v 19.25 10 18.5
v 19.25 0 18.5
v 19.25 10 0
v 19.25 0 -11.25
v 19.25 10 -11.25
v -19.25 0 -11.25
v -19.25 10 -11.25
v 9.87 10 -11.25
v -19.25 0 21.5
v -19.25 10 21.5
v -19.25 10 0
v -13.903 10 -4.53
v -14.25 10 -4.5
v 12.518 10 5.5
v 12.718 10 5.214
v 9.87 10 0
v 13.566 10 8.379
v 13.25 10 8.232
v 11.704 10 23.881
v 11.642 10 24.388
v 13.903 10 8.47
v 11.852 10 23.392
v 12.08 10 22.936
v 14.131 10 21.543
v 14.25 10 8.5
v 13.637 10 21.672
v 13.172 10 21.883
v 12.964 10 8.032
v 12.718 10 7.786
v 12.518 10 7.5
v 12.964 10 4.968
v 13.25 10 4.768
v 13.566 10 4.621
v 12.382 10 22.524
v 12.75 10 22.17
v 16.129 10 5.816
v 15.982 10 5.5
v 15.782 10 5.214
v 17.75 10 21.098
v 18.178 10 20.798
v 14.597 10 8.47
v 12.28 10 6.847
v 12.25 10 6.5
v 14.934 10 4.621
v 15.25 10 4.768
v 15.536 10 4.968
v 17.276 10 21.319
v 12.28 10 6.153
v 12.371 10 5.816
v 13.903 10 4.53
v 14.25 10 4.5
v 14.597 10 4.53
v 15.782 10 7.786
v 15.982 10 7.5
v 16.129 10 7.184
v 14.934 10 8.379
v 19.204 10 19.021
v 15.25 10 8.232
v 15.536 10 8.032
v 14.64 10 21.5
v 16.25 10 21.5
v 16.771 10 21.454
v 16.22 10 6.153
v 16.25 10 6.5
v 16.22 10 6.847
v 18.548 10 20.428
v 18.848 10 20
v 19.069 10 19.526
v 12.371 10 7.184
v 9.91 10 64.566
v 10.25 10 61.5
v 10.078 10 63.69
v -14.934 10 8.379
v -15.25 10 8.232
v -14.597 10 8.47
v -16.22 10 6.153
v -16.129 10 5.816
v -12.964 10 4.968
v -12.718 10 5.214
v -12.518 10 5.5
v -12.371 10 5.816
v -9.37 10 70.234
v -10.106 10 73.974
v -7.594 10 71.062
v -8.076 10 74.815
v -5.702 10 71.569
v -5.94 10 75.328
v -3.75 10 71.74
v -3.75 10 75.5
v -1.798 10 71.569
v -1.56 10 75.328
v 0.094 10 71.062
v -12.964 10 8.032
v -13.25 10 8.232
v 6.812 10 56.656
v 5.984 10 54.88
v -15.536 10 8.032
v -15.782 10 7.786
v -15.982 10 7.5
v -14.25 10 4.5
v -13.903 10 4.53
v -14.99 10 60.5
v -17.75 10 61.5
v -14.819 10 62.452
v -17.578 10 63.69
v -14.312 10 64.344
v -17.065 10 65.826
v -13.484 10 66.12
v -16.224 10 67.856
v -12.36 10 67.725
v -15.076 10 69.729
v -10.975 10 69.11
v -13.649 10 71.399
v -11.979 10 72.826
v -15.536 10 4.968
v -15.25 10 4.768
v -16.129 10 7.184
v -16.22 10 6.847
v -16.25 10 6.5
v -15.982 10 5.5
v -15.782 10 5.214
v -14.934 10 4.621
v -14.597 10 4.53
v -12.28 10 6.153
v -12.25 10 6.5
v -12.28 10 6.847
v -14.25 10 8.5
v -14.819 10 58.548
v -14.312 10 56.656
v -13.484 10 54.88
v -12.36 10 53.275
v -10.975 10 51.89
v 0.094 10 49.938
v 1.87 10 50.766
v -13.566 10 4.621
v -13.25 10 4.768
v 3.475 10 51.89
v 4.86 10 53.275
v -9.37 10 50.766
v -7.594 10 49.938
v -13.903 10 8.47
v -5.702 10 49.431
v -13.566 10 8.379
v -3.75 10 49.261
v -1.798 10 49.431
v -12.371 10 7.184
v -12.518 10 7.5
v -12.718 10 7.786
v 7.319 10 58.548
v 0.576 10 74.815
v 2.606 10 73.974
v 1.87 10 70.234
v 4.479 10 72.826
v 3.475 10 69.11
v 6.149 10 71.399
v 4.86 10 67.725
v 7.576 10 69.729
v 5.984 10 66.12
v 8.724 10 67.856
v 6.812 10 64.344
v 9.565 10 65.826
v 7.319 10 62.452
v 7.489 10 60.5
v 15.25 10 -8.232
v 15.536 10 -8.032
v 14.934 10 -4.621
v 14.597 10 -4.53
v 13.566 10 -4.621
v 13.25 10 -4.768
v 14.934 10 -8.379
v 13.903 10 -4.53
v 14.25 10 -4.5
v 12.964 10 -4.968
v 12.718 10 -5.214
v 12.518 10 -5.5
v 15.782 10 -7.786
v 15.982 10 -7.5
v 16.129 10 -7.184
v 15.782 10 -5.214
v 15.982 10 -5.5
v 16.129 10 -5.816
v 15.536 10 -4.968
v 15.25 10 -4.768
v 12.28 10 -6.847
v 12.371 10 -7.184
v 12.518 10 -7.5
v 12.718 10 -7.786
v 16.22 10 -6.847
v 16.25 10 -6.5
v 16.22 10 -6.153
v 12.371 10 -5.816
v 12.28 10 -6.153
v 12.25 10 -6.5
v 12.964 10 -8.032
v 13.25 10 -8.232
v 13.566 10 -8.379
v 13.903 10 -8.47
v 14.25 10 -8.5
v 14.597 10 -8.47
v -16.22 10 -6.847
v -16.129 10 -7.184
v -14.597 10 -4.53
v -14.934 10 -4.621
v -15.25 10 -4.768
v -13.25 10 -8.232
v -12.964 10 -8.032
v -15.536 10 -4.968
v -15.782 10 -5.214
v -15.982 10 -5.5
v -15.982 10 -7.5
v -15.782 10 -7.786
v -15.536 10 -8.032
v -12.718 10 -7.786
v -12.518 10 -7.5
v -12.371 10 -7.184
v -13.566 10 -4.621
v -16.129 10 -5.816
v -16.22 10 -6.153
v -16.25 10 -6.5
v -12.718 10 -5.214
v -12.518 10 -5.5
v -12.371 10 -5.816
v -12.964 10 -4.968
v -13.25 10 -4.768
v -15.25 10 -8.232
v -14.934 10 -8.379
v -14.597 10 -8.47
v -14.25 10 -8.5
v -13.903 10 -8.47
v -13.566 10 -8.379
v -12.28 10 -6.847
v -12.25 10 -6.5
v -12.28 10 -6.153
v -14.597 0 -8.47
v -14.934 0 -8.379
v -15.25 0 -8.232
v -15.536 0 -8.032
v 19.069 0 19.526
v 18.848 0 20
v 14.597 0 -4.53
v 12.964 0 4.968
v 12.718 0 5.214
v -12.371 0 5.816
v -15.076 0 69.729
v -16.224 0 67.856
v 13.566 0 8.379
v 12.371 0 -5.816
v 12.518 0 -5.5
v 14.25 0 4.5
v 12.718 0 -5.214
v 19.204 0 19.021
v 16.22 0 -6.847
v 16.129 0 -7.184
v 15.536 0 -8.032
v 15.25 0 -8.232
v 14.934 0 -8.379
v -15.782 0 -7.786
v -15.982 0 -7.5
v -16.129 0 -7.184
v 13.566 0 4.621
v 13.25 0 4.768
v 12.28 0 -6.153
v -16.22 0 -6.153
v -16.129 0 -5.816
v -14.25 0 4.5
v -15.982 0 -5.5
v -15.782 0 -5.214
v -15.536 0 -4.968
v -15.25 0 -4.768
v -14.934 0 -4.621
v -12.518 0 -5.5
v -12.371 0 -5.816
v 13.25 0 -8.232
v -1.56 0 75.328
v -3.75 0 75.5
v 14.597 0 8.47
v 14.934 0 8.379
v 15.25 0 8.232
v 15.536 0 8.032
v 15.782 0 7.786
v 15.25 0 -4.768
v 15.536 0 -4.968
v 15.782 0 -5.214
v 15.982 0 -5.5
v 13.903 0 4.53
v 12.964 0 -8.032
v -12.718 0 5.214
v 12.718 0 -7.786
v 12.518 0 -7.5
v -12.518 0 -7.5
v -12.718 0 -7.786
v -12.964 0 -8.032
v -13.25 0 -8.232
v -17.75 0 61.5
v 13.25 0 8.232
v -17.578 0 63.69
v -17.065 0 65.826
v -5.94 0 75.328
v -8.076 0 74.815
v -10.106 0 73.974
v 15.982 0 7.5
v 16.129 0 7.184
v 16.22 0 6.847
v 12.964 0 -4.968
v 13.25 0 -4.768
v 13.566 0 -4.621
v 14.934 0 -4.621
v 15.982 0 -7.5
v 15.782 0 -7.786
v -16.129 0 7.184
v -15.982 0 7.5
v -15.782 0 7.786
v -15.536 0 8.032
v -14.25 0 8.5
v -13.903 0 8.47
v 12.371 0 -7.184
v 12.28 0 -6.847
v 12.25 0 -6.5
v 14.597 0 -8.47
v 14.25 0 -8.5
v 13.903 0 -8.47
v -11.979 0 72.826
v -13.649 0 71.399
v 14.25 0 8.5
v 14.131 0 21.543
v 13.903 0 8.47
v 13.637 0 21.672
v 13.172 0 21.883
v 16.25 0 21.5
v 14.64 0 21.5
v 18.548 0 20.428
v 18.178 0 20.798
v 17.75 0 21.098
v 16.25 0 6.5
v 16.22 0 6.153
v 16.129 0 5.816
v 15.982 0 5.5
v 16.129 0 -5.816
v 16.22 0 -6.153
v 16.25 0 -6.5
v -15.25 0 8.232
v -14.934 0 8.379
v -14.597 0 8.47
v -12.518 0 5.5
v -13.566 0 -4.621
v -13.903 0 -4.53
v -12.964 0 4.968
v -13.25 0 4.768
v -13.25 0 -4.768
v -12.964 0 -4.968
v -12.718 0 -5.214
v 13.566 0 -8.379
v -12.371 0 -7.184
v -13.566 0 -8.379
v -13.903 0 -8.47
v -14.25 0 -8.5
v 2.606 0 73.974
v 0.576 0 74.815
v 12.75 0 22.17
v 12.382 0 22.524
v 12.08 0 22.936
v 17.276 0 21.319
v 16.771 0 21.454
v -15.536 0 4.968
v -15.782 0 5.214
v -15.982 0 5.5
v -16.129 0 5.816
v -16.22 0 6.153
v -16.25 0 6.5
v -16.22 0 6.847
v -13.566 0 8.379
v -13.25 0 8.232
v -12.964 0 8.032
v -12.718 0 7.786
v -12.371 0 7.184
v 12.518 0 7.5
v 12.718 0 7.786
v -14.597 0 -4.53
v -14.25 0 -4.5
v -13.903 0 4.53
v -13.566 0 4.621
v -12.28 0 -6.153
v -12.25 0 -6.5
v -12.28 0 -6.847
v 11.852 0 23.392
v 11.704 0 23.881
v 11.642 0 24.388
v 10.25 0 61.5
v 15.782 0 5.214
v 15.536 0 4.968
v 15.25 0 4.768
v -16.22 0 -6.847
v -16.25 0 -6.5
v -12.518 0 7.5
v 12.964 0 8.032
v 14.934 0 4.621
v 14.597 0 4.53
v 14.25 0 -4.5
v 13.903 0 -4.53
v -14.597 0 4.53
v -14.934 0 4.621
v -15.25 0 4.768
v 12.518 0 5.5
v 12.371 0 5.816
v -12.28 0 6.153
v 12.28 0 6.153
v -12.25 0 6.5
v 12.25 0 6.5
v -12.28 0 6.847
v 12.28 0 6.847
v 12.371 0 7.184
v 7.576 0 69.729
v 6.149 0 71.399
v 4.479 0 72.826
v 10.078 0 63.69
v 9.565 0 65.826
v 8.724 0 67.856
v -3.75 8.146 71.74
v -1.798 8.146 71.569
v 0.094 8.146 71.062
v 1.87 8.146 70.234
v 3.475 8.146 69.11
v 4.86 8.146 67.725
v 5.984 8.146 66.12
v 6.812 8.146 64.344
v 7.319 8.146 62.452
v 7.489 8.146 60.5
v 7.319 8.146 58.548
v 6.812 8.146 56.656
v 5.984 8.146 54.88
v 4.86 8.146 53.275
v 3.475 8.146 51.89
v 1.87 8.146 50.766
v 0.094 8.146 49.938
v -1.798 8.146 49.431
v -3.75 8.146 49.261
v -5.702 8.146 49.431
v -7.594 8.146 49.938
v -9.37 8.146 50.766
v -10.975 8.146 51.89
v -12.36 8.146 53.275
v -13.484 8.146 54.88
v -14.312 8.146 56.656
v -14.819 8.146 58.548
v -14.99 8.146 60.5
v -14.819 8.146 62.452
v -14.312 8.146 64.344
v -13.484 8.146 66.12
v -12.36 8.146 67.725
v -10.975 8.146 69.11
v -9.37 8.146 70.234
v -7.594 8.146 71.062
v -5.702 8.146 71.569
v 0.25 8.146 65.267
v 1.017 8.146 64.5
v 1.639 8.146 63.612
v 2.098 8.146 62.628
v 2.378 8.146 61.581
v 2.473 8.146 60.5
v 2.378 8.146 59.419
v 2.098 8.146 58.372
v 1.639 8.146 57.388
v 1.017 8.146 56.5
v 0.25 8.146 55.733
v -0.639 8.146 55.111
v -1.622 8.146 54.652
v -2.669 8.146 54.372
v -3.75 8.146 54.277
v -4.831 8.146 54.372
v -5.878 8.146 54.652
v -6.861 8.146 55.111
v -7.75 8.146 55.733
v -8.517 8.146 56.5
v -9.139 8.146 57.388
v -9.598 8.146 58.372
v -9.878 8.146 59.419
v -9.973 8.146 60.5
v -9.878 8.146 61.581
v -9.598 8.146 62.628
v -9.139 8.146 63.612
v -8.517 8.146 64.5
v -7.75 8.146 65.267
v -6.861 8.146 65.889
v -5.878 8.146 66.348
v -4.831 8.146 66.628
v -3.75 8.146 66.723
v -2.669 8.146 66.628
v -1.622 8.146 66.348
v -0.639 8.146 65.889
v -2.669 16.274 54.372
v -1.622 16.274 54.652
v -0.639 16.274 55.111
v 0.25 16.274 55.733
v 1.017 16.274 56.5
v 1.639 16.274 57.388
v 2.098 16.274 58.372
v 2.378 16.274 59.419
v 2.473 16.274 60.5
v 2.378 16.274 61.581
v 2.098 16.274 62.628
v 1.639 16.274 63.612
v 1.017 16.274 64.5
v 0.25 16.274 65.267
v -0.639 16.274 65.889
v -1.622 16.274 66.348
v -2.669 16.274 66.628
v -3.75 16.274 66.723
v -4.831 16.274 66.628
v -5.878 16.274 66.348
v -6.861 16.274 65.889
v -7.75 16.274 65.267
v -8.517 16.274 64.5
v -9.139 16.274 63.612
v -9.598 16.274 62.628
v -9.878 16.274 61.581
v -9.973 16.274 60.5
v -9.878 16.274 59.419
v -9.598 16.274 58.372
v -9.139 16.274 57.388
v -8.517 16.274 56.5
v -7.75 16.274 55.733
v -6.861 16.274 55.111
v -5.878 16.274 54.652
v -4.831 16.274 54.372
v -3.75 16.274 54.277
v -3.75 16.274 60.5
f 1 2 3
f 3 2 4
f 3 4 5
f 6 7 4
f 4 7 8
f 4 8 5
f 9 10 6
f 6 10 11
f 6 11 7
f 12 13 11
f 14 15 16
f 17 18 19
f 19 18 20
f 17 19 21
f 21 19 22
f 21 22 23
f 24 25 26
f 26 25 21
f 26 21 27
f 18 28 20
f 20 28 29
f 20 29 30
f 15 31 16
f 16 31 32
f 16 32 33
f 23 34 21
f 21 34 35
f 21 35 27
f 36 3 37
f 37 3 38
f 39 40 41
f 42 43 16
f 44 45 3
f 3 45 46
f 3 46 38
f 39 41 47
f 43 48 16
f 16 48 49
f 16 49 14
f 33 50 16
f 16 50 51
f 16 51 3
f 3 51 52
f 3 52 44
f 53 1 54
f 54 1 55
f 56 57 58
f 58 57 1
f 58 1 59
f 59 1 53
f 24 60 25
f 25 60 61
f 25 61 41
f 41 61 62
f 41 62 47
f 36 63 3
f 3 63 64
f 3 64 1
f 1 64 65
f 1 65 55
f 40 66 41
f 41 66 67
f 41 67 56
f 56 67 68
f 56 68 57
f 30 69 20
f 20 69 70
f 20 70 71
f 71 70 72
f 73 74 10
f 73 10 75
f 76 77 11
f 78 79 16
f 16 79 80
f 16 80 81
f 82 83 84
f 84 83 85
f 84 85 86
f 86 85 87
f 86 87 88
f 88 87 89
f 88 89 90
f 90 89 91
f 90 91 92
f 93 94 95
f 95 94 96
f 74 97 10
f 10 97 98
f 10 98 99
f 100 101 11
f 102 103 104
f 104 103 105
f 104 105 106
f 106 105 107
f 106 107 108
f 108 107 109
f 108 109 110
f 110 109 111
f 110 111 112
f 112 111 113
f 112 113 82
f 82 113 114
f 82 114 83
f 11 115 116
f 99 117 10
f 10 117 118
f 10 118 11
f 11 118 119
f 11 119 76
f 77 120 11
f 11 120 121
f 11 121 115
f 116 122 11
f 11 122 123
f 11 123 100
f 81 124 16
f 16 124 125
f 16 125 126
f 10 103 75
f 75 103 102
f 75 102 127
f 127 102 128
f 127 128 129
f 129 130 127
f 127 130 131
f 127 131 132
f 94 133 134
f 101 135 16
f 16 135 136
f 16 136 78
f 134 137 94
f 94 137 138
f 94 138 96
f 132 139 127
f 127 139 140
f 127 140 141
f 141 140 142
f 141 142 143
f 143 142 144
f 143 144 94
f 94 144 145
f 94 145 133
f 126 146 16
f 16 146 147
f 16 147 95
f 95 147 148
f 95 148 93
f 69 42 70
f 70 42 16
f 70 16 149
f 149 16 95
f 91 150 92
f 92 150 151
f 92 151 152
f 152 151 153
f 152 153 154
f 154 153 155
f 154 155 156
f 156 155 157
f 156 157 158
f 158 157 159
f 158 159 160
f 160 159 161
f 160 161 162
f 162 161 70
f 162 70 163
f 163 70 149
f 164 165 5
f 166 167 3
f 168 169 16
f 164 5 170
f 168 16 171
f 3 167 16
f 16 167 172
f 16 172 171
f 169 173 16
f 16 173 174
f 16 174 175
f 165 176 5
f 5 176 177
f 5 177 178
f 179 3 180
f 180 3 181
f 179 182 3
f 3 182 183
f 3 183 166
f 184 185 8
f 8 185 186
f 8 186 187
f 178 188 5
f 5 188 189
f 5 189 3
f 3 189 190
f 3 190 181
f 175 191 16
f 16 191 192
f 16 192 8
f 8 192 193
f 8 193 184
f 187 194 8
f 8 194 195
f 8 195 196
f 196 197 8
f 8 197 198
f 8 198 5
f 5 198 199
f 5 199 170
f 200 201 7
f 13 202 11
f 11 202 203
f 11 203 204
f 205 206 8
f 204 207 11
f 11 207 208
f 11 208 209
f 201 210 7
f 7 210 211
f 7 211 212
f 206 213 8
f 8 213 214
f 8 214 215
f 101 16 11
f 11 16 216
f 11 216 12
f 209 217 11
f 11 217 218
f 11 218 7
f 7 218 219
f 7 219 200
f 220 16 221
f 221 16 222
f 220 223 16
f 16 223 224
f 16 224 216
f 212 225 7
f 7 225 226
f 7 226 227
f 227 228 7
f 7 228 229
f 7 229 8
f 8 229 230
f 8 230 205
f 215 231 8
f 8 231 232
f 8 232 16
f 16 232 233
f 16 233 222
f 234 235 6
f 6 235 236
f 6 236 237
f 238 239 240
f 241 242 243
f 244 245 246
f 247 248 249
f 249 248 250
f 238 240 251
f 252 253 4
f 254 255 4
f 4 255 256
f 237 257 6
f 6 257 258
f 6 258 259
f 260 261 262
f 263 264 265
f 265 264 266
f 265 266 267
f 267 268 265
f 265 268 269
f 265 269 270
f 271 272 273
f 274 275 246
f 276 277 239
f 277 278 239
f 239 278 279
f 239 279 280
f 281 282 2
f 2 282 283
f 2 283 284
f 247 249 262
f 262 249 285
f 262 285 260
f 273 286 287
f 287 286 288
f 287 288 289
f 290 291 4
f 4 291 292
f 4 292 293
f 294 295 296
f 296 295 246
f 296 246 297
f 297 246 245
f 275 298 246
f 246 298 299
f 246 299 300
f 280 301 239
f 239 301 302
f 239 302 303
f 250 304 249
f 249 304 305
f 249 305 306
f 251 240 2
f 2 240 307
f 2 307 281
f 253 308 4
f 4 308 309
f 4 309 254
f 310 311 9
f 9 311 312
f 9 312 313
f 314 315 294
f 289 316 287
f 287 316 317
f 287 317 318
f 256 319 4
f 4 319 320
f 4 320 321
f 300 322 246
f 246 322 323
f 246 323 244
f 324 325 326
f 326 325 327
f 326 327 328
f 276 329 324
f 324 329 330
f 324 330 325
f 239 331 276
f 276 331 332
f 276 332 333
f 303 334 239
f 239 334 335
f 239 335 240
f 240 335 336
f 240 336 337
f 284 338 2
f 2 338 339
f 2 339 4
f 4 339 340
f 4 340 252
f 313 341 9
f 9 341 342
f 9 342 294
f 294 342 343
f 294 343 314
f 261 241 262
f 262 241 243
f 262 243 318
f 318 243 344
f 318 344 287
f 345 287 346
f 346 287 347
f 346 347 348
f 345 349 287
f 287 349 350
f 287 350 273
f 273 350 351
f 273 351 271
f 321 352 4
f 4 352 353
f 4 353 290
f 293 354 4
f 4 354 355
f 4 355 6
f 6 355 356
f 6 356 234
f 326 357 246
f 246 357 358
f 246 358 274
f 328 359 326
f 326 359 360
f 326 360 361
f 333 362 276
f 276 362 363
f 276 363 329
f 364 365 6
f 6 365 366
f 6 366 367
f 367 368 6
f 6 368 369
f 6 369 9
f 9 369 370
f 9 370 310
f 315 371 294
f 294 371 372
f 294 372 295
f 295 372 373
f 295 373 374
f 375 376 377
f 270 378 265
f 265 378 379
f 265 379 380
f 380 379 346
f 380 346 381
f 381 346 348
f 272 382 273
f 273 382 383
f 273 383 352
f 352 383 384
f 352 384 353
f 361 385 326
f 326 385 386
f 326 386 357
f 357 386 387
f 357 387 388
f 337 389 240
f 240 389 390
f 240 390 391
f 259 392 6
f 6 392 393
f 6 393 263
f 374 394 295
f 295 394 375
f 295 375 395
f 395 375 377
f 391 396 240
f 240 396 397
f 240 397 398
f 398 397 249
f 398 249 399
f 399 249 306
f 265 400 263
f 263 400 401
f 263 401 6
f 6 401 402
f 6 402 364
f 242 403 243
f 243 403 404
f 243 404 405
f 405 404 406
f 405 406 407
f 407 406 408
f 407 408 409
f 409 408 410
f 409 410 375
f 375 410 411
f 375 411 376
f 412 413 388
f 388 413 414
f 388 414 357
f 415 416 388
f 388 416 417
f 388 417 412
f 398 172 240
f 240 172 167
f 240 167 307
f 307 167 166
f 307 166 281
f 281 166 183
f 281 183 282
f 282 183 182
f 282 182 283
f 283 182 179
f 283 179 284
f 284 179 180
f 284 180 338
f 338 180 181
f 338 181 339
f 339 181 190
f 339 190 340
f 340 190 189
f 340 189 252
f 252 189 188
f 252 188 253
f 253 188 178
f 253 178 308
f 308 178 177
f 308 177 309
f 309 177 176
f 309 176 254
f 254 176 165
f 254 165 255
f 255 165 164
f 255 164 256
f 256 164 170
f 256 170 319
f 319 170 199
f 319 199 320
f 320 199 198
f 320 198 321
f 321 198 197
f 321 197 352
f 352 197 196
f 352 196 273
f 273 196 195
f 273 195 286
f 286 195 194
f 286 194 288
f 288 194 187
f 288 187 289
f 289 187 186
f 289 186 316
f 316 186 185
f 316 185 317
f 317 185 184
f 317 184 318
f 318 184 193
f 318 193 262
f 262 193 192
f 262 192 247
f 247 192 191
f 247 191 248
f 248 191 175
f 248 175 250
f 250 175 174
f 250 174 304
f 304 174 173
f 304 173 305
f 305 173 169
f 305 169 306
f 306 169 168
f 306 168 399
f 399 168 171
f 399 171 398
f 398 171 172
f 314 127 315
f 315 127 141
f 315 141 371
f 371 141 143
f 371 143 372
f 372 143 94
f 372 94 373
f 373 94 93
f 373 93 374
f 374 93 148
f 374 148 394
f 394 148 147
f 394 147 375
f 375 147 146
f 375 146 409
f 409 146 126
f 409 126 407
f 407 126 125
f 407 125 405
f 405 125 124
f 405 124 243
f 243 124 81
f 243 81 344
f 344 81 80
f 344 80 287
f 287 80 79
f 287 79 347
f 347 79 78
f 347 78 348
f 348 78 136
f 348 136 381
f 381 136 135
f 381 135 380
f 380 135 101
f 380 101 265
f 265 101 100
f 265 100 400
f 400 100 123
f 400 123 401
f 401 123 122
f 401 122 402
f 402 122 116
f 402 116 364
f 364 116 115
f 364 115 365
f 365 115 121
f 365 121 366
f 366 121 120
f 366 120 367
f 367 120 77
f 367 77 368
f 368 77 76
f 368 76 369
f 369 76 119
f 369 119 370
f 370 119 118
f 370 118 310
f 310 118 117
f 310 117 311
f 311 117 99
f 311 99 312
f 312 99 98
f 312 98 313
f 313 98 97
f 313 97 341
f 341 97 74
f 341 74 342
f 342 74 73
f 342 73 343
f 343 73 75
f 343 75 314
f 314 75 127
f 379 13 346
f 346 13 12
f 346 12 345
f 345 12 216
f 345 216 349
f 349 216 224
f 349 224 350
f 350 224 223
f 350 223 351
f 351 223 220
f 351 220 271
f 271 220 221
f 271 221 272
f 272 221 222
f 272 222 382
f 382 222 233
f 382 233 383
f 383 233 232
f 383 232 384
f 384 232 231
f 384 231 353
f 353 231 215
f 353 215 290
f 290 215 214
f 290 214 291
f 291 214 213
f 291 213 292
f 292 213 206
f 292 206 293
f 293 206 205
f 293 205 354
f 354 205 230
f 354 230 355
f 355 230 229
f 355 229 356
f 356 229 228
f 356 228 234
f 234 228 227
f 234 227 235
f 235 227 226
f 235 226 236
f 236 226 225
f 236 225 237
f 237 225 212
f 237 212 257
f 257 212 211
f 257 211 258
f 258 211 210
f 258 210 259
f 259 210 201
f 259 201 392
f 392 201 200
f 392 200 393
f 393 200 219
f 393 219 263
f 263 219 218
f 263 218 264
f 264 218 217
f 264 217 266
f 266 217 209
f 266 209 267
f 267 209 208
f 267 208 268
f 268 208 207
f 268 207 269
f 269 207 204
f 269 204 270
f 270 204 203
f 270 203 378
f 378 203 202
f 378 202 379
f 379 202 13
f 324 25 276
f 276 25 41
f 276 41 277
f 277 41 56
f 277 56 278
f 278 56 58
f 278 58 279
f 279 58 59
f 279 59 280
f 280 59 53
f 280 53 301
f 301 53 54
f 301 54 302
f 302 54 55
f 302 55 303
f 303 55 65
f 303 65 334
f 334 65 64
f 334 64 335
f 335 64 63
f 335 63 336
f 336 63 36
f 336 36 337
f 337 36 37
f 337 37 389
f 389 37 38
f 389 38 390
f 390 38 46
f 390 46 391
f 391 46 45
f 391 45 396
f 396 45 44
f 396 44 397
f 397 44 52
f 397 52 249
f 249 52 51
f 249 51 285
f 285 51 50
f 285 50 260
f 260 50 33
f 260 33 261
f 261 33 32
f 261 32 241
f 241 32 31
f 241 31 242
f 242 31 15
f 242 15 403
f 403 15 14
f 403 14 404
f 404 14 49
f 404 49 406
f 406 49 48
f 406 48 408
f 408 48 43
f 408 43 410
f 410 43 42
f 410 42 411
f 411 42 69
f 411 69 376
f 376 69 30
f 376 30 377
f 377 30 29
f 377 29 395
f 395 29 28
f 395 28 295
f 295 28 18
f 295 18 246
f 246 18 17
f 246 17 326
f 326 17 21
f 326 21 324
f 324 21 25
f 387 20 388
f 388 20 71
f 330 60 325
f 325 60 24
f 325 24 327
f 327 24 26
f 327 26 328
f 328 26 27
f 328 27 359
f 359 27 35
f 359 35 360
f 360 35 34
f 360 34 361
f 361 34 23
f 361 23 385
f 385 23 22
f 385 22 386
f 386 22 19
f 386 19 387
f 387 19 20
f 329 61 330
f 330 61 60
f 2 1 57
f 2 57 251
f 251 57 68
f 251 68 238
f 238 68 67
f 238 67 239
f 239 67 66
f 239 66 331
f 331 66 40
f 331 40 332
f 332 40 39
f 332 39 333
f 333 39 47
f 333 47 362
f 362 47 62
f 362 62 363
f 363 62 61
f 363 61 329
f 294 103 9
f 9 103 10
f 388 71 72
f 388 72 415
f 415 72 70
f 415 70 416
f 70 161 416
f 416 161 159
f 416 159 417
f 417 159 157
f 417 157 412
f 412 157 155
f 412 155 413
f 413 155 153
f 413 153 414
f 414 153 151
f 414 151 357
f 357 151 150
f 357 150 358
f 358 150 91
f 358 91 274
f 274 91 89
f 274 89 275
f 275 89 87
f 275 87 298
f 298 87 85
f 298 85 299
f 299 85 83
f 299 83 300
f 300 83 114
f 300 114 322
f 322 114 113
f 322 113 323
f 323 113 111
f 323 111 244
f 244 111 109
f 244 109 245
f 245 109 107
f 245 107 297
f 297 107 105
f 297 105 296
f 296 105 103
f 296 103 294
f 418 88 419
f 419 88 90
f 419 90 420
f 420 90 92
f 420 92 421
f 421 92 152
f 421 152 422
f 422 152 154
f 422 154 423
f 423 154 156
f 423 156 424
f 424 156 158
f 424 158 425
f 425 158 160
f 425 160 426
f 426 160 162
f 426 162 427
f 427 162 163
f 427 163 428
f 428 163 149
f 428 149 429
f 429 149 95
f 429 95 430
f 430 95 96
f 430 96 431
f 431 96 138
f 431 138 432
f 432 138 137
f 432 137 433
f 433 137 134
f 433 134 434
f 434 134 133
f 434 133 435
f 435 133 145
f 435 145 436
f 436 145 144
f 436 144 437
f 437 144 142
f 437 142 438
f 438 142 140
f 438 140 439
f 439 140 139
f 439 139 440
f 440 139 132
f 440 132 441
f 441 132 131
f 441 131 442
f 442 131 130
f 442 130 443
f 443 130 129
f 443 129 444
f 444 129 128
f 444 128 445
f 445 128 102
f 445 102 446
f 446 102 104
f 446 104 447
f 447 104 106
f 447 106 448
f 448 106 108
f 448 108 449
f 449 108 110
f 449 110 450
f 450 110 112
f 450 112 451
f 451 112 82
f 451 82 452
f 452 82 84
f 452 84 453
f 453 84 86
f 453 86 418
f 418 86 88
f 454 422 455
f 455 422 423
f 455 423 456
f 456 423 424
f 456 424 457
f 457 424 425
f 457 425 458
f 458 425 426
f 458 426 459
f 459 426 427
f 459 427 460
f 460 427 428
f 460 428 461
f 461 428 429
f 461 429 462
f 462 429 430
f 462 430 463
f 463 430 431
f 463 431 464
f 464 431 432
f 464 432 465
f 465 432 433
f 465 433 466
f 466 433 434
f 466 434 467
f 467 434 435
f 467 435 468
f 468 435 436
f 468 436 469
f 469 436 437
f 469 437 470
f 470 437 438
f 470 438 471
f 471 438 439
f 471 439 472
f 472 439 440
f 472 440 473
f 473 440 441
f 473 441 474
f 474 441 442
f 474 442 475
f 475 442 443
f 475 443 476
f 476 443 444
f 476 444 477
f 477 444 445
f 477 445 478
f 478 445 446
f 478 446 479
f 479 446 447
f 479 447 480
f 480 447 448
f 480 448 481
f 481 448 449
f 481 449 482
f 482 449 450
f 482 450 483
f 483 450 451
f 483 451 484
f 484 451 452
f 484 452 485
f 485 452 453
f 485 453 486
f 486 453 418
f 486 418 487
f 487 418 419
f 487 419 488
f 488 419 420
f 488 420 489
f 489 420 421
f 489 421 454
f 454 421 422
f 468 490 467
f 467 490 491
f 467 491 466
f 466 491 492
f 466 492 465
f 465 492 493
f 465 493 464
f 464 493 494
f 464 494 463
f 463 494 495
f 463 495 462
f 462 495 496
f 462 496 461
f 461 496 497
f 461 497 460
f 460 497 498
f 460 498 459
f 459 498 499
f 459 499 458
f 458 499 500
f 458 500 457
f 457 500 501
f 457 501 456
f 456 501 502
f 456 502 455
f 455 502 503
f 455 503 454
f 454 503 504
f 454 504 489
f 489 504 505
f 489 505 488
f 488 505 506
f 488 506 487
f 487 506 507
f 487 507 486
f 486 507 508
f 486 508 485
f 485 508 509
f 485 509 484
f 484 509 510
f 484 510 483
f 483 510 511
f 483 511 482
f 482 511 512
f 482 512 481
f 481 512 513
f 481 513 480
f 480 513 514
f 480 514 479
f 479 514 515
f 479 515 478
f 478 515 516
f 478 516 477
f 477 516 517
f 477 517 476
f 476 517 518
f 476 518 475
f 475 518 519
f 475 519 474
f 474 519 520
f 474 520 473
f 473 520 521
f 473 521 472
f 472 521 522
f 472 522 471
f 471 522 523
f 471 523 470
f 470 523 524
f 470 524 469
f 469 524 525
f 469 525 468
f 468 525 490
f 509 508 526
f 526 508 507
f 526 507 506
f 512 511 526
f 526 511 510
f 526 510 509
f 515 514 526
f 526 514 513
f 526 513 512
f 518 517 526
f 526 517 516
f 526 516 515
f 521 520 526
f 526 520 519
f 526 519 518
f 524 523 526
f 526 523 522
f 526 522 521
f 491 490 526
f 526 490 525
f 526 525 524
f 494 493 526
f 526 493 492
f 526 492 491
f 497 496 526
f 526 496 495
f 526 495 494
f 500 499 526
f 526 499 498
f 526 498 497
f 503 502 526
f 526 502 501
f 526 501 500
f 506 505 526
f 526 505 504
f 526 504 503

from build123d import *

# Parameters (mm, degrees)
SKETCH1_W             = 38.5
SKETCH1_H             = 22.75
BOSS_EXTRUDE1_DEPTH   = 10
F_4_0MM_DOWEL_HOLE1_D = 4
BOSS_EXTRUDE2_DEPTH   = 10
SKETCH5_R             = 11.2395
CUT_EXTRUDE1_DEPTH    = 1.8542
SKETCH6_R             = 6.223
BOSS_EXTRUDE3_DEPTH   = 8.128


with BuildPart() as part:
    # Sketch1 → Boss-Extrude1 (new body)
    with BuildSketch(Plane(origin=(0, 0, 0), x_dir=(1, 0, 0), z_dir=(0, 1, 0))):
        with Locations((0, -0.125)):
            Rectangle(SKETCH1_W, SKETCH1_H)
    extrude(amount=BOSS_EXTRUDE1_DEPTH)

    # Ø4.0mm Dowel Hole1 (through all)
    with Locations(Plane(origin=(0, 10, 0), x_dir=(1, 0, 0), z_dir=(0, 1, 0))):
        with Locations((14.25, 6.5), (-14.25, -6.5), (-14.25, 6.5), (14.25, -6.5)):
            Hole(F_4_0MM_DOWEL_HOLE1_D / 2)

    # Sketch4 → Boss-Extrude2 (add)
    with BuildSketch(Plane.XZ.offset(-10)):
        with BuildLine():
            Line((-19.25, 21.5), (-19.25, 11.5))
            Line((-19.25, 11.5), (19.25, 11.5))
            Line((19.25, 11.5), (19.25, 18.5))
            ThreePointArc((19.25, 18.5), (18.371320344, 20.621320344), (16.25, 21.5))
            Line((16.25, 21.5), (14.639608634, 21.5))
            ThreePointArc((14.639608634, 21.5), (12.558414619, 22.339298384), (11.641715787, 24.387579018))
            Line((11.641715787, 24.387579018), (10.25, 61.5))
            ThreePointArc((10.25, 61.5), (-3.75, 75.5), (-17.75, 61.5))
            Line((-17.75, 61.5), (-19.25, 21.5))
        make_face()
    extrude(amount=BOSS_EXTRUDE2_DEPTH)

    # Sketch5 → Cut-Extrude1 (cut)
    with BuildSketch(Plane(origin=(0, 10, 0), x_dir=(1, 0, 0), z_dir=(0, 1, 0))):
        with Locations(Location((-3.75, -60.5, 0), (0, 0, 270))):
            Circle(SKETCH5_R)
    extrude(amount=-CUT_EXTRUDE1_DEPTH, mode=Mode.SUBTRACT)

    # Sketch6 → Boss-Extrude3 (add)
    with BuildSketch(Plane(origin=(0, 8.1458, 0), x_dir=(1, 0, 0), z_dir=(0, 1, 0))):
        with Locations(Location((-3.75, -60.5, 0), (0, 0, 270))):
            Circle(SKETCH6_R)
    extrude(amount=BOSS_EXTRUDE3_DEPTH)


solid = part.part
